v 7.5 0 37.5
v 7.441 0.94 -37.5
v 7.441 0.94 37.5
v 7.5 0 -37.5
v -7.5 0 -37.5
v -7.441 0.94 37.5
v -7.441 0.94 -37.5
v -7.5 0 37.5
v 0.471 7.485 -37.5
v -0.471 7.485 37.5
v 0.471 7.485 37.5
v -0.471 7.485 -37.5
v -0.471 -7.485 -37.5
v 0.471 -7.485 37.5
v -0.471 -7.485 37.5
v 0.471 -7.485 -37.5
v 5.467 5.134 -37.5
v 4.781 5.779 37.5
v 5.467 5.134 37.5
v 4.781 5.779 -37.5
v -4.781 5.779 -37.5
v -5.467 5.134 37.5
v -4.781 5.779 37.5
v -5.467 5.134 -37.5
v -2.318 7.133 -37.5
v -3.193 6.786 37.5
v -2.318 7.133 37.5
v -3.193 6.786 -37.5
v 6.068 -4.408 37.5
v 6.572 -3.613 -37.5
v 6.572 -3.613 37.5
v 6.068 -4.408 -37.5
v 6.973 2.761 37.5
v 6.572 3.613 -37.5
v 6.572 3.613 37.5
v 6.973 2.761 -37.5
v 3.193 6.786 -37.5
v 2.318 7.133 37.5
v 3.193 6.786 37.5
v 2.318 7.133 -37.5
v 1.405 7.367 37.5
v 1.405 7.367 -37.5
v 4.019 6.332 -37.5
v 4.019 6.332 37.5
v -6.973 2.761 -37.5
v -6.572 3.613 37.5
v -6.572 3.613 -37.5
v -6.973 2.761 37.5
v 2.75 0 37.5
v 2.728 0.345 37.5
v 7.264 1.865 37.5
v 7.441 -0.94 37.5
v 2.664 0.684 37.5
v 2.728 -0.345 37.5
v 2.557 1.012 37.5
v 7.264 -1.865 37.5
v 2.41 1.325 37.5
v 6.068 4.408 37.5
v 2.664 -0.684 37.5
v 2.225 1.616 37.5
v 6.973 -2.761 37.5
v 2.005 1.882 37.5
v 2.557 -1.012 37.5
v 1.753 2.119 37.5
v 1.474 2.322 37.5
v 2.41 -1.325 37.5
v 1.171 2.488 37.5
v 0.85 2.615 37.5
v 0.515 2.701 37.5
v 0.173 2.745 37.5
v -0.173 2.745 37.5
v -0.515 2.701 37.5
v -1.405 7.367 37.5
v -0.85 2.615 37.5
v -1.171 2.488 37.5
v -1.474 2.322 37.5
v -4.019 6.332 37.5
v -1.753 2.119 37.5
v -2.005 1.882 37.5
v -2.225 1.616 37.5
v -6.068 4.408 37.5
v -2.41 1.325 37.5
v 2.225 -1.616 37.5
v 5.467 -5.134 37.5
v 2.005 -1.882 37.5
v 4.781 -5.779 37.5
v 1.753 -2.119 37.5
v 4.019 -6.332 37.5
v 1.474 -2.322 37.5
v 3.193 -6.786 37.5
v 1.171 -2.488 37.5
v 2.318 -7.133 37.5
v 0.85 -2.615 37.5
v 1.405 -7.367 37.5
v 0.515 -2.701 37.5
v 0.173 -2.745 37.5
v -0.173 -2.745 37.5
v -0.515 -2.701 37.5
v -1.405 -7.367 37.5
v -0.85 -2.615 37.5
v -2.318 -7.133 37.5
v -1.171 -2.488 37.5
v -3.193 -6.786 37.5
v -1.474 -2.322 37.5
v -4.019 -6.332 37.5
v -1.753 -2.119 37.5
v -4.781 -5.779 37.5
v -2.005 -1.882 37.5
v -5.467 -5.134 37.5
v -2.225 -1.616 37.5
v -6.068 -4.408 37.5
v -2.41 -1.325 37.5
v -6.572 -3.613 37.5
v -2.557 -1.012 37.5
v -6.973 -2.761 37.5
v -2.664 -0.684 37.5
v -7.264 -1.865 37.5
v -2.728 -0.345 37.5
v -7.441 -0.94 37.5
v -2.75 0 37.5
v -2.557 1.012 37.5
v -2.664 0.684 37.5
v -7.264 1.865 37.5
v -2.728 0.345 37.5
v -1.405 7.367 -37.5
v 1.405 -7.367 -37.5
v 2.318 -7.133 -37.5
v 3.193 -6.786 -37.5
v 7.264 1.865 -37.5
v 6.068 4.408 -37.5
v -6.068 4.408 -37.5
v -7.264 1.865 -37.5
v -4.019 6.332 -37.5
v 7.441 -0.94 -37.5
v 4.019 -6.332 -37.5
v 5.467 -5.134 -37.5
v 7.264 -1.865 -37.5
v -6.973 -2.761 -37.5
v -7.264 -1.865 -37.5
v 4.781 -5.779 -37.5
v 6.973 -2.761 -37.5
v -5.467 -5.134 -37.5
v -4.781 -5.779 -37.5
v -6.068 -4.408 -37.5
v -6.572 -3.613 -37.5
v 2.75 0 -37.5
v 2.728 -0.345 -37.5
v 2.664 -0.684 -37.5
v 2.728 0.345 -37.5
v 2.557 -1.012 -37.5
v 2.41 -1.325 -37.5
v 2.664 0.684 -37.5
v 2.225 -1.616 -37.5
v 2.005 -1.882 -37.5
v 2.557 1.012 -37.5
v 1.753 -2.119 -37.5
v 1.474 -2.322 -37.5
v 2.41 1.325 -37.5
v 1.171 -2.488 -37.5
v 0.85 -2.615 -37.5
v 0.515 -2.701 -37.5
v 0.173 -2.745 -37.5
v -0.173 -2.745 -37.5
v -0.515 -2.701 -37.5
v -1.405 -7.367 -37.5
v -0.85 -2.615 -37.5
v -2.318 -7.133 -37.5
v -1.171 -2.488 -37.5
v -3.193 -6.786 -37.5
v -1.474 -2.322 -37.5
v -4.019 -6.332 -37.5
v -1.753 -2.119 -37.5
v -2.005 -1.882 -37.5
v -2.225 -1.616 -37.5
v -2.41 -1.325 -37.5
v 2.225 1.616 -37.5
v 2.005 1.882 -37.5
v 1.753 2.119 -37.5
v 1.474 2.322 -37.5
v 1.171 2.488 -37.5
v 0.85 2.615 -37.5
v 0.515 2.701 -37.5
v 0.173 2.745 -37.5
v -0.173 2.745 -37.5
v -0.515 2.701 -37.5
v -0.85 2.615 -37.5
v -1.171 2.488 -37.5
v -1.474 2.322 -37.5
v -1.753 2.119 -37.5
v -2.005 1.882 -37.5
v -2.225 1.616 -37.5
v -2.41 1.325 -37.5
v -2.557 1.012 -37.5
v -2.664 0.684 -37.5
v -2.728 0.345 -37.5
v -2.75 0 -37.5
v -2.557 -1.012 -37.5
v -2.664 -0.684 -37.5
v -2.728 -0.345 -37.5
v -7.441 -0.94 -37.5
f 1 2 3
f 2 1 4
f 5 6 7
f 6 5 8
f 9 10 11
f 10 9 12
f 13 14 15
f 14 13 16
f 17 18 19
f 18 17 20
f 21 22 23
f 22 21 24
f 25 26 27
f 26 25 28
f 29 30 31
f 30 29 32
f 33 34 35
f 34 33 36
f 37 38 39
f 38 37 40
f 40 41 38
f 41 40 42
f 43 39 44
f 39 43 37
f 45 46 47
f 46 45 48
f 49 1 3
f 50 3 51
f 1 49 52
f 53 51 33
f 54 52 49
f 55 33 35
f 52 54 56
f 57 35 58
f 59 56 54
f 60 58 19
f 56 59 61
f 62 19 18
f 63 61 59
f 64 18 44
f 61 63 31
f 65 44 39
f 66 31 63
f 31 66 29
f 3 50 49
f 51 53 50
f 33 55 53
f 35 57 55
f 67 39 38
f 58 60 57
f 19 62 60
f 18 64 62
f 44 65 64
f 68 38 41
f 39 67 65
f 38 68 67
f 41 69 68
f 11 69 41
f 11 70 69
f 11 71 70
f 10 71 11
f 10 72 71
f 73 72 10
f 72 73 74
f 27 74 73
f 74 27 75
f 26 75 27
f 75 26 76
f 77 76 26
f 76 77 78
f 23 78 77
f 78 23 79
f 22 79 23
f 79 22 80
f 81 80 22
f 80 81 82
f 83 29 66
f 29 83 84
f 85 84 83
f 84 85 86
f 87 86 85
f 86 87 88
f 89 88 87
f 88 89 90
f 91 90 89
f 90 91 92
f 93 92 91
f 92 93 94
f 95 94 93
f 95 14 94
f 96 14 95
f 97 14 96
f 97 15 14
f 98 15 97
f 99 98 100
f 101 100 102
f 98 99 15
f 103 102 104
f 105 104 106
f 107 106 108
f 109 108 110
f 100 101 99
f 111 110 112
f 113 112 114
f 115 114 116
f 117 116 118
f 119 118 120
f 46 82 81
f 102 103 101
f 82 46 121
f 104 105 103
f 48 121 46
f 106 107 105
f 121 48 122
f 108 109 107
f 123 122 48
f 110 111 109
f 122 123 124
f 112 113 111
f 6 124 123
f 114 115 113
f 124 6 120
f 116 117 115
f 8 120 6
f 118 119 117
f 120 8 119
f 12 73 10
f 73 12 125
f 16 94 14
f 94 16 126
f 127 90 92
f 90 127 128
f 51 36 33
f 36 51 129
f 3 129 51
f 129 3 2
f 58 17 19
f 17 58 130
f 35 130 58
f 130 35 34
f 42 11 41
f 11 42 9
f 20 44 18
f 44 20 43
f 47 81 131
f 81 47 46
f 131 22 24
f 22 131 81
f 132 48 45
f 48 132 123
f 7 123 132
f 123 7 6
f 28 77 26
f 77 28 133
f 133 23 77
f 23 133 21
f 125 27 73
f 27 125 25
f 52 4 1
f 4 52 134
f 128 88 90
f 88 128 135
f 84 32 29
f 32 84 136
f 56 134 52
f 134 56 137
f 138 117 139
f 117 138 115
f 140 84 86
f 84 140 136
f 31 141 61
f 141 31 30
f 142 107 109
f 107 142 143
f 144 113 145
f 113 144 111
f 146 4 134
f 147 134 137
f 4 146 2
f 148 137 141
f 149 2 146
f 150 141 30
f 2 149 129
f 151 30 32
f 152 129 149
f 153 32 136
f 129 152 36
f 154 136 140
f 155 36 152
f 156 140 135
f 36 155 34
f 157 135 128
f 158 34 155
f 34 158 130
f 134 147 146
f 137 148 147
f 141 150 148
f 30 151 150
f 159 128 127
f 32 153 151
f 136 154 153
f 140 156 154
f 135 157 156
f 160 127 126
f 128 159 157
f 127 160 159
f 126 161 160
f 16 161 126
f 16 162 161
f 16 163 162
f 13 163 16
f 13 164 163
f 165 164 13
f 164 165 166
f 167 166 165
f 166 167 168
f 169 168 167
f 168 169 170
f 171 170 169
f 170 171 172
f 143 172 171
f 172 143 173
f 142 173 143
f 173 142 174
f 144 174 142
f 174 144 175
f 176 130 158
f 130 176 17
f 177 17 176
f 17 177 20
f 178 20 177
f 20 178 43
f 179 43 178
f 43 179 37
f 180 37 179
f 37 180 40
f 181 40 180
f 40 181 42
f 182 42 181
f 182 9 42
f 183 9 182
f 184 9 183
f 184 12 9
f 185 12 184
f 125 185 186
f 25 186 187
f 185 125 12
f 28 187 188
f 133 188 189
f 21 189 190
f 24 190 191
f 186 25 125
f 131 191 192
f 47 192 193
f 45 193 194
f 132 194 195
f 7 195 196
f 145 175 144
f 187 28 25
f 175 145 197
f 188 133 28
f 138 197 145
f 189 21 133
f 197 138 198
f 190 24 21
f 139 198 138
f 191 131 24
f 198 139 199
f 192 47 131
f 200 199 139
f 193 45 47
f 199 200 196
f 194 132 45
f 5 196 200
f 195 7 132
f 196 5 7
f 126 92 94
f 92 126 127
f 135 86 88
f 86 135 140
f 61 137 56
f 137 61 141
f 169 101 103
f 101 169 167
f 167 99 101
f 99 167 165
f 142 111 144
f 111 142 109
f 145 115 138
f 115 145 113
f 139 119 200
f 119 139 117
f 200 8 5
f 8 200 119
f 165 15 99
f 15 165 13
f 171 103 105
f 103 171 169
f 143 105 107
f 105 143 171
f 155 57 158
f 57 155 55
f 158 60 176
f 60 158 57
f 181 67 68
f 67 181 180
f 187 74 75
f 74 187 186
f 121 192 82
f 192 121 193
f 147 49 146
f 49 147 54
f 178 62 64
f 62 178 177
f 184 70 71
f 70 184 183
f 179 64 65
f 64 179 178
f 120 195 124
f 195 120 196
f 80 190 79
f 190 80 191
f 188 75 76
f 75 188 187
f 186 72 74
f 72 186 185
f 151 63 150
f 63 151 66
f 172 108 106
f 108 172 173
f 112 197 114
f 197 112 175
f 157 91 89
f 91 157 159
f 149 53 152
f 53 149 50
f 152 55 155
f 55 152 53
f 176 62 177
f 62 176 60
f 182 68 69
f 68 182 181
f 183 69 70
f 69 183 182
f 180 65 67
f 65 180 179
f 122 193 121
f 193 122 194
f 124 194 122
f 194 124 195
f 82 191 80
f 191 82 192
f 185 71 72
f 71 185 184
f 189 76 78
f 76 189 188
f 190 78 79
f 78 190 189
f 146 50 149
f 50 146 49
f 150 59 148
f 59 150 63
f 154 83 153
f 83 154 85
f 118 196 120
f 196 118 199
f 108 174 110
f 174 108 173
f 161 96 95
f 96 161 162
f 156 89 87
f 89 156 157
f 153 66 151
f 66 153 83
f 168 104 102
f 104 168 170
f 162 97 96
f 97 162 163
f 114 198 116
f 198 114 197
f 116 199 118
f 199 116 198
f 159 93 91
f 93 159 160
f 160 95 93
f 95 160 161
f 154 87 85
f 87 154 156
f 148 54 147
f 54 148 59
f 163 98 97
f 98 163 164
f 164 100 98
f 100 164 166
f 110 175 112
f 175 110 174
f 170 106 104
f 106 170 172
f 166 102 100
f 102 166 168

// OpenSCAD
$fn = 50;


difference() {
	union() {
		translate(v = [0, 0, -37.5000000000]) {
			cylinder(h = 75, r = 7.5000000000);
		}
	}
	union() {
		translate(v = [0, 0, -100.0000000000]) {
			cylinder(h = 200, r = 2.7500000000);
		}
	}
}
